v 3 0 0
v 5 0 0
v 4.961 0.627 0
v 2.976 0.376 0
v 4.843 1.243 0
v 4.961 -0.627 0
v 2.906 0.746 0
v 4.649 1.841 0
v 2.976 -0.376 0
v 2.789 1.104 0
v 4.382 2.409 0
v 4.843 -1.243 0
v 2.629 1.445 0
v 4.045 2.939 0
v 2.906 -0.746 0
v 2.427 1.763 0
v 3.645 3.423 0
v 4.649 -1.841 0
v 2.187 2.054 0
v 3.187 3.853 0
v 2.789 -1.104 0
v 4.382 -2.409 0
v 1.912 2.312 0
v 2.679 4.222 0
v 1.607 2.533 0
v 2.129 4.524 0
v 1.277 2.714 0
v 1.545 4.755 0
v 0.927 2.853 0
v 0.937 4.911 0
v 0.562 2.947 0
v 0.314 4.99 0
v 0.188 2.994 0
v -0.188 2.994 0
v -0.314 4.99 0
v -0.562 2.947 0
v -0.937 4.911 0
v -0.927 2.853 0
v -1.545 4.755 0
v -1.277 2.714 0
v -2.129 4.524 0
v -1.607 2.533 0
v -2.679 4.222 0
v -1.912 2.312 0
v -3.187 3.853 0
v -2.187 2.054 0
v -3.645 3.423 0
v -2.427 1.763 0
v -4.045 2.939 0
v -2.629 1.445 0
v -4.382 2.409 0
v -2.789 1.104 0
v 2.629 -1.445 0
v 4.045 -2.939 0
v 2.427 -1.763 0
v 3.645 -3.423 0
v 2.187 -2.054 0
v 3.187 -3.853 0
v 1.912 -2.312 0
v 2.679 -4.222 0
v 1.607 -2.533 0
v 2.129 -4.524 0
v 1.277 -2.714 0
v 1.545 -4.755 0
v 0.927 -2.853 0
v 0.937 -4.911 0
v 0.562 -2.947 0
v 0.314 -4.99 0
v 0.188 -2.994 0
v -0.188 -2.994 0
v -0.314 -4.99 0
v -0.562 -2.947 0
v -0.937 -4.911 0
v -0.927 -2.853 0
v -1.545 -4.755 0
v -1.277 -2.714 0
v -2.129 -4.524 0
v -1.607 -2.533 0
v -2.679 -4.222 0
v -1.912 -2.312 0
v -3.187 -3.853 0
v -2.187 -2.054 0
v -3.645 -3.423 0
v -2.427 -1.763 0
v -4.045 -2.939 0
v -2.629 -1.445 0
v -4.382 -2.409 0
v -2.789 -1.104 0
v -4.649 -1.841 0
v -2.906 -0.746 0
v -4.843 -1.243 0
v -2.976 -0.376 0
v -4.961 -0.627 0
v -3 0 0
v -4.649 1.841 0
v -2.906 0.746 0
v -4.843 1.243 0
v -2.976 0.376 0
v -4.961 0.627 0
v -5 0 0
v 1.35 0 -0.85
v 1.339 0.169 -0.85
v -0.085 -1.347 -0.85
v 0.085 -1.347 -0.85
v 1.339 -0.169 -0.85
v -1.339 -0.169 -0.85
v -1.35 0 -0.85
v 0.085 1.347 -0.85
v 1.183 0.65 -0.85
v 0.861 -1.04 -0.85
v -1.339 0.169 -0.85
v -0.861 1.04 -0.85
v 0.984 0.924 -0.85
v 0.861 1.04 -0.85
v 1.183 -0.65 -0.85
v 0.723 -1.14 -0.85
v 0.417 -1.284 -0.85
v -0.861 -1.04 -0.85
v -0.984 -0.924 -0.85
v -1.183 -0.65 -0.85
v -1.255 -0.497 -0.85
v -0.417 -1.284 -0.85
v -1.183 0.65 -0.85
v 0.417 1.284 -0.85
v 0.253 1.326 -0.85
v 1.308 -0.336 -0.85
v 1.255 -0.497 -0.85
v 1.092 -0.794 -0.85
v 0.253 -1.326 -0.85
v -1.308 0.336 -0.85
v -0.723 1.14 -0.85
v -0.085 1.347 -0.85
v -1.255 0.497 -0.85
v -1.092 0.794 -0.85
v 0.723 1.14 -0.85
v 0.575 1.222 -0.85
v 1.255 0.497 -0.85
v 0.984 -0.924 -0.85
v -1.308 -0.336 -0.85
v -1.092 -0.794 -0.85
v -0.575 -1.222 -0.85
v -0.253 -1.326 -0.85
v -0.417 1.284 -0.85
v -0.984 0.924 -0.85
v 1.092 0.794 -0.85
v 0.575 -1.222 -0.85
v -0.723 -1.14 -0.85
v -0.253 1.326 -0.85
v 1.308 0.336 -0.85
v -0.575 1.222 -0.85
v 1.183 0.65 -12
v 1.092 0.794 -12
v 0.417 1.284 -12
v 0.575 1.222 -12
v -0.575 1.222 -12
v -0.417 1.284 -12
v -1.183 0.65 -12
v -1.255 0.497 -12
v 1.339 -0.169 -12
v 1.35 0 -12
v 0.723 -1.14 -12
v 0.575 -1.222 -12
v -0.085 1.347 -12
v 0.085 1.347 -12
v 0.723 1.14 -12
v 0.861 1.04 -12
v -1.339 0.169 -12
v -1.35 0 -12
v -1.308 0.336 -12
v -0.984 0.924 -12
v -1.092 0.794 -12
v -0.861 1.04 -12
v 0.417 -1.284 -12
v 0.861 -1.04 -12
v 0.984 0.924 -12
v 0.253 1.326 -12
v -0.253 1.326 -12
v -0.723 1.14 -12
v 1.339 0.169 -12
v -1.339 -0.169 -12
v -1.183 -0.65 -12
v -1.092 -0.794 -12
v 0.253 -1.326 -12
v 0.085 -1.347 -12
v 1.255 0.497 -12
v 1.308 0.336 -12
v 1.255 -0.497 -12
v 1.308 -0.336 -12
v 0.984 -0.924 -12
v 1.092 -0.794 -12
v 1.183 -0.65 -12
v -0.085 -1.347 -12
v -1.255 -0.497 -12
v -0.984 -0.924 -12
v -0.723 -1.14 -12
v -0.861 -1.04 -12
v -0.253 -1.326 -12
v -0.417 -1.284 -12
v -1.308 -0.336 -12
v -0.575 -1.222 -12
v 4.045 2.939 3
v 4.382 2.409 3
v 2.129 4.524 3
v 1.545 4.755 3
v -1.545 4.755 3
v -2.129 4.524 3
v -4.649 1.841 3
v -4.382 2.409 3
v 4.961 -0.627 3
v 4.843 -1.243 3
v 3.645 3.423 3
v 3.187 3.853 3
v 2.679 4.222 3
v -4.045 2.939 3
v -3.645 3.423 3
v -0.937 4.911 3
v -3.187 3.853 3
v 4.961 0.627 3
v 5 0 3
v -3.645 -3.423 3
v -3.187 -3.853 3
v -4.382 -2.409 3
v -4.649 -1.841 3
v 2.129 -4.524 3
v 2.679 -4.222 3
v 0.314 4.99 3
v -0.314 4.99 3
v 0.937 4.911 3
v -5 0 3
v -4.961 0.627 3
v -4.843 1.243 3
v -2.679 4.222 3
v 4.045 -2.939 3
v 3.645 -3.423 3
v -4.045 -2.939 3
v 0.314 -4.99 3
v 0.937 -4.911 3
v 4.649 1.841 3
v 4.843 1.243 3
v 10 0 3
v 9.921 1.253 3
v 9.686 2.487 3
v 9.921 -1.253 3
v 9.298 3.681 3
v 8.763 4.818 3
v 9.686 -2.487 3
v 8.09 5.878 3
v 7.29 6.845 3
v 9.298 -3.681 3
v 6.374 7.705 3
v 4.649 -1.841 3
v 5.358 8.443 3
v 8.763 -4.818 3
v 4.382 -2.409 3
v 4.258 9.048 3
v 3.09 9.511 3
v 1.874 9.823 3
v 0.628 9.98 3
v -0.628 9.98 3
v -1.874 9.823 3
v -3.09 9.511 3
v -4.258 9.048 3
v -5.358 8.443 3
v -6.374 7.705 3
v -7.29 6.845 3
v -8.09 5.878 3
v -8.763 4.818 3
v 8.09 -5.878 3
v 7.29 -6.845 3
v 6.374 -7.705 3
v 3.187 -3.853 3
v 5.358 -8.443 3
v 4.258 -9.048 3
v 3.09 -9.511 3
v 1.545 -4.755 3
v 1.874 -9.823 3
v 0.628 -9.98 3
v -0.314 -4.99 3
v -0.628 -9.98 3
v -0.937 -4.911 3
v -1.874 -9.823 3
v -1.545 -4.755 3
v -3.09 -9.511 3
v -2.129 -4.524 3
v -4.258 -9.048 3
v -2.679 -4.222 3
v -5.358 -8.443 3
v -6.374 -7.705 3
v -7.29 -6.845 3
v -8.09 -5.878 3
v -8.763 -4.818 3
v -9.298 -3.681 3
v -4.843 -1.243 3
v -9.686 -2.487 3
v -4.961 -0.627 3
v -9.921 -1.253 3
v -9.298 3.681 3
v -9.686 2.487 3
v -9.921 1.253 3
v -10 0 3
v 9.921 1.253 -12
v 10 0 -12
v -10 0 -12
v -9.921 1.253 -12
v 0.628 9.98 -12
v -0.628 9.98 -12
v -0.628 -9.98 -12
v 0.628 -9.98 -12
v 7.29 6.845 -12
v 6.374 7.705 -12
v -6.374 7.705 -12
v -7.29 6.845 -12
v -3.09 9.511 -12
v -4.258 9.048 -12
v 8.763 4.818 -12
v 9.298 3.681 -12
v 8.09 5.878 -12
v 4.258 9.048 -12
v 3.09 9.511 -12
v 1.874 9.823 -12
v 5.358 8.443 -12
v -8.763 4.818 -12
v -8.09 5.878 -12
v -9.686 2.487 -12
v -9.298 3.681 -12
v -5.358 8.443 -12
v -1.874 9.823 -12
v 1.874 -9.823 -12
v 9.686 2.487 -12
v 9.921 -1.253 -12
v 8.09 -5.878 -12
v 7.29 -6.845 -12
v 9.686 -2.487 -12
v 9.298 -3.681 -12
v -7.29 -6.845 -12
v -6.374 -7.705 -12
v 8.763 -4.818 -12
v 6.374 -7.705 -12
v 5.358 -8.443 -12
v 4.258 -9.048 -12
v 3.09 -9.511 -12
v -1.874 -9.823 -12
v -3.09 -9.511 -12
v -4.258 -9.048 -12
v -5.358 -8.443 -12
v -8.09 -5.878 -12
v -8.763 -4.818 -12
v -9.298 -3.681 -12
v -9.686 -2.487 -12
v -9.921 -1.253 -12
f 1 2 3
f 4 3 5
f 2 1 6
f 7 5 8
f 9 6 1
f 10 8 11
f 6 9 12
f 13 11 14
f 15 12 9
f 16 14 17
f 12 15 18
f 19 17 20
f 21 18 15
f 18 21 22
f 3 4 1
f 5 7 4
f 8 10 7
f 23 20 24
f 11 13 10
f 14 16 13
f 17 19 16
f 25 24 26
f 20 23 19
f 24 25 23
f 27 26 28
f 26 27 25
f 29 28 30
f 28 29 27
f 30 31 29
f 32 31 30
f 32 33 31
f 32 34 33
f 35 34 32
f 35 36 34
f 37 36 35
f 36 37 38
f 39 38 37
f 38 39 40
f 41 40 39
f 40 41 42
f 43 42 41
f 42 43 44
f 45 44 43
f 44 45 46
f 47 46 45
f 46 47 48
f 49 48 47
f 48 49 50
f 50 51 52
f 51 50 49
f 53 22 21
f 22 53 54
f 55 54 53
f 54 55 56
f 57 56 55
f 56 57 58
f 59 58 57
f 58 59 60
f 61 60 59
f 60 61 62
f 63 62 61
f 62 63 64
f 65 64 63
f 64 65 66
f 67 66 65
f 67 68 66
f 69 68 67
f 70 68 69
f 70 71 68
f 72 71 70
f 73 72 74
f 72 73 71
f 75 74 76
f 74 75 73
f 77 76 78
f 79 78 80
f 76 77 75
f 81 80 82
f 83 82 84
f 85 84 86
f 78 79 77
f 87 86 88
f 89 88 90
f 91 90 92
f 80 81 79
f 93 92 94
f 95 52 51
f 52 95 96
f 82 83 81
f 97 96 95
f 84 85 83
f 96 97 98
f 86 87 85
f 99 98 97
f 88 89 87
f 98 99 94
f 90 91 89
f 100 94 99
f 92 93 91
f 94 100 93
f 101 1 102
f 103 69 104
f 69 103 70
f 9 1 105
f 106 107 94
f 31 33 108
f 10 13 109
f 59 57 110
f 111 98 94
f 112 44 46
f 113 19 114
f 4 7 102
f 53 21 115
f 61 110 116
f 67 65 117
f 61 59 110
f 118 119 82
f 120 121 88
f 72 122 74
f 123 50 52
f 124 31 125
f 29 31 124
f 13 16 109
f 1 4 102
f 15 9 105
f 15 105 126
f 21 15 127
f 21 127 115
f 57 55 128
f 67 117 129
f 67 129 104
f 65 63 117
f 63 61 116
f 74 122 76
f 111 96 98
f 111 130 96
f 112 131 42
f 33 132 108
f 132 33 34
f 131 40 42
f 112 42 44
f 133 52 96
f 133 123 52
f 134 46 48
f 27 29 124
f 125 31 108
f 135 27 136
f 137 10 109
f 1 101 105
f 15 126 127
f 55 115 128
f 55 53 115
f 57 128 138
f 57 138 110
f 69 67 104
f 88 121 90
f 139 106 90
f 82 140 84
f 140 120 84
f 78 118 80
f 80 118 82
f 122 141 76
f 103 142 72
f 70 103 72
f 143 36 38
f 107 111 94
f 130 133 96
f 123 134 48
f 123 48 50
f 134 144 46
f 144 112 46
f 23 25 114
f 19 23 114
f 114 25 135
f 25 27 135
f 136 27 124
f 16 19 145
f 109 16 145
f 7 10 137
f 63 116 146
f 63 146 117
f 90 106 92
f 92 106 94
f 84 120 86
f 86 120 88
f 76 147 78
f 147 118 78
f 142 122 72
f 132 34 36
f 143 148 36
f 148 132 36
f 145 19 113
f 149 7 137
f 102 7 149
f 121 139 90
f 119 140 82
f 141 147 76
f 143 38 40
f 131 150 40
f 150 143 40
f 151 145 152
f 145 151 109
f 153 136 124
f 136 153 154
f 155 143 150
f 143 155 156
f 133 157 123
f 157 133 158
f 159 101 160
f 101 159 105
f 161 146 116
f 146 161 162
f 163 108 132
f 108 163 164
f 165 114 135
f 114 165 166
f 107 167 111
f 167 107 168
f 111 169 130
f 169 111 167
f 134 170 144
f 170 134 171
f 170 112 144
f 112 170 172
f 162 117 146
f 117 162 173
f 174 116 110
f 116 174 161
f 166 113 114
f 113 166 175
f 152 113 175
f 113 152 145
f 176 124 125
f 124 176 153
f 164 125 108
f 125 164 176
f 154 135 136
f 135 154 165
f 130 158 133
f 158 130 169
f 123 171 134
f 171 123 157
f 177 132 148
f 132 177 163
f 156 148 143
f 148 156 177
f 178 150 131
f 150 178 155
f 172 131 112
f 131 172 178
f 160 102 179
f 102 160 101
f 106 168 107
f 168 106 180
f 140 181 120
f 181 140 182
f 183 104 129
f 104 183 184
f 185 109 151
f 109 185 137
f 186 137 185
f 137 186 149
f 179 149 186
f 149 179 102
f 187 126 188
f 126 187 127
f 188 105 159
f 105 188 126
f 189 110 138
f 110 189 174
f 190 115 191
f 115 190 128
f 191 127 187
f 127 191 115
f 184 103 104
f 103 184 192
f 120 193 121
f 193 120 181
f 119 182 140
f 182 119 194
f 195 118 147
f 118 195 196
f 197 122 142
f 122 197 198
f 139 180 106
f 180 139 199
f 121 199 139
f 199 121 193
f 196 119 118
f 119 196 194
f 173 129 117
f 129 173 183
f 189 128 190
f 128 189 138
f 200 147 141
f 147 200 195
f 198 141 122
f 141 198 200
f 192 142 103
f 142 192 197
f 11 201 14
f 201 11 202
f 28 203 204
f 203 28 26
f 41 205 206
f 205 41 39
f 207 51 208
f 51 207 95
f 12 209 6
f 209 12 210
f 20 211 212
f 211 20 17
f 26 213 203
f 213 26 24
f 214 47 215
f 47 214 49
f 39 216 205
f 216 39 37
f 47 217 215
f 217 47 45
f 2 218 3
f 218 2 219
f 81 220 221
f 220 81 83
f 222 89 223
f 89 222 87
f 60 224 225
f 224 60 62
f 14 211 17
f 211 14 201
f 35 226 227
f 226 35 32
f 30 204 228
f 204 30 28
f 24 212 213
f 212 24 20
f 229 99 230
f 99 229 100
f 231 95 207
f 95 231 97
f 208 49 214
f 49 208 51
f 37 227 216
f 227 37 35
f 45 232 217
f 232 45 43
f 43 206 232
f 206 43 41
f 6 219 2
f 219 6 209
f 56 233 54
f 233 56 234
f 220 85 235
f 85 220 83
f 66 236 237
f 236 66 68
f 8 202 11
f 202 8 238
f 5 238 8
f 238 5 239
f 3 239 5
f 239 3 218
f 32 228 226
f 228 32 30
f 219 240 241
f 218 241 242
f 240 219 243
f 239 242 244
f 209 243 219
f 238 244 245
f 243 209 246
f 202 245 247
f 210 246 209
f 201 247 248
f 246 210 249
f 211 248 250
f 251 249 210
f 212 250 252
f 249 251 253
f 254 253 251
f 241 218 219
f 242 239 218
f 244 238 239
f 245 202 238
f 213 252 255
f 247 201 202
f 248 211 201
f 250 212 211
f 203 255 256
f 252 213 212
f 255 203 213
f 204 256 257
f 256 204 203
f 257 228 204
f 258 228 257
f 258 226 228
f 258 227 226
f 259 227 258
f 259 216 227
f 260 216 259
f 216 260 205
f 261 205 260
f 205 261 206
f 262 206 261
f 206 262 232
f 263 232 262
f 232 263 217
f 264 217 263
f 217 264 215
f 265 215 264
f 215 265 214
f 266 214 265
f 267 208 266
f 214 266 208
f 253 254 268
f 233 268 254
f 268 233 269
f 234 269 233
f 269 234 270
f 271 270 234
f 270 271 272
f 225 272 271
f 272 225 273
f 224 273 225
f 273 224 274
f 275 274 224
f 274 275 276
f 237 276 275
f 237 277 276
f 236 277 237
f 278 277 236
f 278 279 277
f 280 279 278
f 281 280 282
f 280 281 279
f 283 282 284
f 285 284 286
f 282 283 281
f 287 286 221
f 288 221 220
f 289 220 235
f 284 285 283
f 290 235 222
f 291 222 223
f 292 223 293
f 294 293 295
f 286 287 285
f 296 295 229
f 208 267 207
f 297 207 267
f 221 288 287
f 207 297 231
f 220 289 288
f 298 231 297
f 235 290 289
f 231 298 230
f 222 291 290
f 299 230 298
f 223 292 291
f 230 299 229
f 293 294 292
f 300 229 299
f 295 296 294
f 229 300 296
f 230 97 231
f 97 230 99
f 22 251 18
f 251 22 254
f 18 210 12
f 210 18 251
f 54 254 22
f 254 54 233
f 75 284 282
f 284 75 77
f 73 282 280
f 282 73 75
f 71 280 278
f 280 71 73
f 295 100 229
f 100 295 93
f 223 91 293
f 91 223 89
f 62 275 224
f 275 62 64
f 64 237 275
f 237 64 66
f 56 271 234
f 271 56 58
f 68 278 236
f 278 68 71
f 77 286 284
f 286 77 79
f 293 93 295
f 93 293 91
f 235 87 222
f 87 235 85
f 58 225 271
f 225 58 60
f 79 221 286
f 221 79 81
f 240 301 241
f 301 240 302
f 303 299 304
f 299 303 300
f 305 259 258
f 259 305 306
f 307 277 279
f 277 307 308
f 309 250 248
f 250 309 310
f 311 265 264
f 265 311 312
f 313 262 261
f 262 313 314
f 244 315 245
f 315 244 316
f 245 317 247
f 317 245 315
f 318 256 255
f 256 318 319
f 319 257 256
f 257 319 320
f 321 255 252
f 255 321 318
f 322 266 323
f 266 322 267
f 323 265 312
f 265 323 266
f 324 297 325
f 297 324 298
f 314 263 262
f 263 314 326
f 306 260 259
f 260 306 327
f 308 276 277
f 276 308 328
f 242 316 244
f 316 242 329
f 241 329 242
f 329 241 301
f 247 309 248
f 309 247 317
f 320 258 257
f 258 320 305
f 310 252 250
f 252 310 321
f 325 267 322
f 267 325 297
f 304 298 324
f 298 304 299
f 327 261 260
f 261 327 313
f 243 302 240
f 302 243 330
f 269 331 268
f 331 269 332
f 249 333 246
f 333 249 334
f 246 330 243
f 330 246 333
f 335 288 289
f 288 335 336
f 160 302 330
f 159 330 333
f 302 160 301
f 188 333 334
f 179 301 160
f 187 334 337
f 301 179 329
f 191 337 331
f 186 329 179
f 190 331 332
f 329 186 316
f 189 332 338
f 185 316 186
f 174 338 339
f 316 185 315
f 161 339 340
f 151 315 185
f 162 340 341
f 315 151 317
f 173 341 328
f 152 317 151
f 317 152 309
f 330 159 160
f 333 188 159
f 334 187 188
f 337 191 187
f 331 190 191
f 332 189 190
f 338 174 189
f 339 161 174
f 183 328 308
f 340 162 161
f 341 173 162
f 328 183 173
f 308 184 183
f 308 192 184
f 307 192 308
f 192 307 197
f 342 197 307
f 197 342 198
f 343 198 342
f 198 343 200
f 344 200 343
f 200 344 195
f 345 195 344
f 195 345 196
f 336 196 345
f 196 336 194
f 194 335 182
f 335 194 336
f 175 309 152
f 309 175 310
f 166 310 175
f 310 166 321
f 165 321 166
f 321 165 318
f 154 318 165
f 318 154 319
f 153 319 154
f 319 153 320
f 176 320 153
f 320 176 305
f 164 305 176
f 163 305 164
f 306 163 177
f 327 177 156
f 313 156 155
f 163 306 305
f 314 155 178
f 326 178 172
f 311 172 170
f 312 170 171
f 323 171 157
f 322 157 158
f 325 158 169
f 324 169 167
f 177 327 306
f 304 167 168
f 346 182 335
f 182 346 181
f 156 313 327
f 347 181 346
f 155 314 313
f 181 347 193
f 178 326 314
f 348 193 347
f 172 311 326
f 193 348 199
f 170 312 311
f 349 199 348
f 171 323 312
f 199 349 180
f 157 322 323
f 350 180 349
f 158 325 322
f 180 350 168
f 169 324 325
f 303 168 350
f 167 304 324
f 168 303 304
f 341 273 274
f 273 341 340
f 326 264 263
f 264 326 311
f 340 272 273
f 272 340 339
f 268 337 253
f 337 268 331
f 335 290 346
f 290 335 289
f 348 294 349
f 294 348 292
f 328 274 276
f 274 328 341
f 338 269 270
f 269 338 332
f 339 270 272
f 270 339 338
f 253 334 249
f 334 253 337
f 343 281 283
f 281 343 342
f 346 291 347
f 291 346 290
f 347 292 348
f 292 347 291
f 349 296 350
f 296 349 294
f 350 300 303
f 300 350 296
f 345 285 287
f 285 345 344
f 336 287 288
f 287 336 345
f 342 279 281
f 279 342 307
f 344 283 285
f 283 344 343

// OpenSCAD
$fn = 50;

difference() {
	union() {
		translate(v = [0, 0, -12.0]) {
			cylinder(h = 15, r = 10.0);
		}
	}
	union() {
		translate(v = [0, 0, 0]) {
			rotate(a = [0, 0, 0]) {
				difference() {
					union() {
						translate(v = [0, 0, -15.0]) {
							cylinder(h = 15, r = 1.0);
						}
						translate(v = [0, 0, -0.85]) {
							cylinder(h = 0.85, r1 = 1.35, r2 = 3.0);
						}
						translate(v = [0, 0, -15.0]) {
							cylinder(h = 15, r = 1.35);
						}
						translate(v = [0, 0, -15.0]) {
							cylinder(h = 15, r = 1.0);
						}
					}
					union();
				}
			}
		}
		#cylinder(h = 3, r = 5.0);
	}
}
